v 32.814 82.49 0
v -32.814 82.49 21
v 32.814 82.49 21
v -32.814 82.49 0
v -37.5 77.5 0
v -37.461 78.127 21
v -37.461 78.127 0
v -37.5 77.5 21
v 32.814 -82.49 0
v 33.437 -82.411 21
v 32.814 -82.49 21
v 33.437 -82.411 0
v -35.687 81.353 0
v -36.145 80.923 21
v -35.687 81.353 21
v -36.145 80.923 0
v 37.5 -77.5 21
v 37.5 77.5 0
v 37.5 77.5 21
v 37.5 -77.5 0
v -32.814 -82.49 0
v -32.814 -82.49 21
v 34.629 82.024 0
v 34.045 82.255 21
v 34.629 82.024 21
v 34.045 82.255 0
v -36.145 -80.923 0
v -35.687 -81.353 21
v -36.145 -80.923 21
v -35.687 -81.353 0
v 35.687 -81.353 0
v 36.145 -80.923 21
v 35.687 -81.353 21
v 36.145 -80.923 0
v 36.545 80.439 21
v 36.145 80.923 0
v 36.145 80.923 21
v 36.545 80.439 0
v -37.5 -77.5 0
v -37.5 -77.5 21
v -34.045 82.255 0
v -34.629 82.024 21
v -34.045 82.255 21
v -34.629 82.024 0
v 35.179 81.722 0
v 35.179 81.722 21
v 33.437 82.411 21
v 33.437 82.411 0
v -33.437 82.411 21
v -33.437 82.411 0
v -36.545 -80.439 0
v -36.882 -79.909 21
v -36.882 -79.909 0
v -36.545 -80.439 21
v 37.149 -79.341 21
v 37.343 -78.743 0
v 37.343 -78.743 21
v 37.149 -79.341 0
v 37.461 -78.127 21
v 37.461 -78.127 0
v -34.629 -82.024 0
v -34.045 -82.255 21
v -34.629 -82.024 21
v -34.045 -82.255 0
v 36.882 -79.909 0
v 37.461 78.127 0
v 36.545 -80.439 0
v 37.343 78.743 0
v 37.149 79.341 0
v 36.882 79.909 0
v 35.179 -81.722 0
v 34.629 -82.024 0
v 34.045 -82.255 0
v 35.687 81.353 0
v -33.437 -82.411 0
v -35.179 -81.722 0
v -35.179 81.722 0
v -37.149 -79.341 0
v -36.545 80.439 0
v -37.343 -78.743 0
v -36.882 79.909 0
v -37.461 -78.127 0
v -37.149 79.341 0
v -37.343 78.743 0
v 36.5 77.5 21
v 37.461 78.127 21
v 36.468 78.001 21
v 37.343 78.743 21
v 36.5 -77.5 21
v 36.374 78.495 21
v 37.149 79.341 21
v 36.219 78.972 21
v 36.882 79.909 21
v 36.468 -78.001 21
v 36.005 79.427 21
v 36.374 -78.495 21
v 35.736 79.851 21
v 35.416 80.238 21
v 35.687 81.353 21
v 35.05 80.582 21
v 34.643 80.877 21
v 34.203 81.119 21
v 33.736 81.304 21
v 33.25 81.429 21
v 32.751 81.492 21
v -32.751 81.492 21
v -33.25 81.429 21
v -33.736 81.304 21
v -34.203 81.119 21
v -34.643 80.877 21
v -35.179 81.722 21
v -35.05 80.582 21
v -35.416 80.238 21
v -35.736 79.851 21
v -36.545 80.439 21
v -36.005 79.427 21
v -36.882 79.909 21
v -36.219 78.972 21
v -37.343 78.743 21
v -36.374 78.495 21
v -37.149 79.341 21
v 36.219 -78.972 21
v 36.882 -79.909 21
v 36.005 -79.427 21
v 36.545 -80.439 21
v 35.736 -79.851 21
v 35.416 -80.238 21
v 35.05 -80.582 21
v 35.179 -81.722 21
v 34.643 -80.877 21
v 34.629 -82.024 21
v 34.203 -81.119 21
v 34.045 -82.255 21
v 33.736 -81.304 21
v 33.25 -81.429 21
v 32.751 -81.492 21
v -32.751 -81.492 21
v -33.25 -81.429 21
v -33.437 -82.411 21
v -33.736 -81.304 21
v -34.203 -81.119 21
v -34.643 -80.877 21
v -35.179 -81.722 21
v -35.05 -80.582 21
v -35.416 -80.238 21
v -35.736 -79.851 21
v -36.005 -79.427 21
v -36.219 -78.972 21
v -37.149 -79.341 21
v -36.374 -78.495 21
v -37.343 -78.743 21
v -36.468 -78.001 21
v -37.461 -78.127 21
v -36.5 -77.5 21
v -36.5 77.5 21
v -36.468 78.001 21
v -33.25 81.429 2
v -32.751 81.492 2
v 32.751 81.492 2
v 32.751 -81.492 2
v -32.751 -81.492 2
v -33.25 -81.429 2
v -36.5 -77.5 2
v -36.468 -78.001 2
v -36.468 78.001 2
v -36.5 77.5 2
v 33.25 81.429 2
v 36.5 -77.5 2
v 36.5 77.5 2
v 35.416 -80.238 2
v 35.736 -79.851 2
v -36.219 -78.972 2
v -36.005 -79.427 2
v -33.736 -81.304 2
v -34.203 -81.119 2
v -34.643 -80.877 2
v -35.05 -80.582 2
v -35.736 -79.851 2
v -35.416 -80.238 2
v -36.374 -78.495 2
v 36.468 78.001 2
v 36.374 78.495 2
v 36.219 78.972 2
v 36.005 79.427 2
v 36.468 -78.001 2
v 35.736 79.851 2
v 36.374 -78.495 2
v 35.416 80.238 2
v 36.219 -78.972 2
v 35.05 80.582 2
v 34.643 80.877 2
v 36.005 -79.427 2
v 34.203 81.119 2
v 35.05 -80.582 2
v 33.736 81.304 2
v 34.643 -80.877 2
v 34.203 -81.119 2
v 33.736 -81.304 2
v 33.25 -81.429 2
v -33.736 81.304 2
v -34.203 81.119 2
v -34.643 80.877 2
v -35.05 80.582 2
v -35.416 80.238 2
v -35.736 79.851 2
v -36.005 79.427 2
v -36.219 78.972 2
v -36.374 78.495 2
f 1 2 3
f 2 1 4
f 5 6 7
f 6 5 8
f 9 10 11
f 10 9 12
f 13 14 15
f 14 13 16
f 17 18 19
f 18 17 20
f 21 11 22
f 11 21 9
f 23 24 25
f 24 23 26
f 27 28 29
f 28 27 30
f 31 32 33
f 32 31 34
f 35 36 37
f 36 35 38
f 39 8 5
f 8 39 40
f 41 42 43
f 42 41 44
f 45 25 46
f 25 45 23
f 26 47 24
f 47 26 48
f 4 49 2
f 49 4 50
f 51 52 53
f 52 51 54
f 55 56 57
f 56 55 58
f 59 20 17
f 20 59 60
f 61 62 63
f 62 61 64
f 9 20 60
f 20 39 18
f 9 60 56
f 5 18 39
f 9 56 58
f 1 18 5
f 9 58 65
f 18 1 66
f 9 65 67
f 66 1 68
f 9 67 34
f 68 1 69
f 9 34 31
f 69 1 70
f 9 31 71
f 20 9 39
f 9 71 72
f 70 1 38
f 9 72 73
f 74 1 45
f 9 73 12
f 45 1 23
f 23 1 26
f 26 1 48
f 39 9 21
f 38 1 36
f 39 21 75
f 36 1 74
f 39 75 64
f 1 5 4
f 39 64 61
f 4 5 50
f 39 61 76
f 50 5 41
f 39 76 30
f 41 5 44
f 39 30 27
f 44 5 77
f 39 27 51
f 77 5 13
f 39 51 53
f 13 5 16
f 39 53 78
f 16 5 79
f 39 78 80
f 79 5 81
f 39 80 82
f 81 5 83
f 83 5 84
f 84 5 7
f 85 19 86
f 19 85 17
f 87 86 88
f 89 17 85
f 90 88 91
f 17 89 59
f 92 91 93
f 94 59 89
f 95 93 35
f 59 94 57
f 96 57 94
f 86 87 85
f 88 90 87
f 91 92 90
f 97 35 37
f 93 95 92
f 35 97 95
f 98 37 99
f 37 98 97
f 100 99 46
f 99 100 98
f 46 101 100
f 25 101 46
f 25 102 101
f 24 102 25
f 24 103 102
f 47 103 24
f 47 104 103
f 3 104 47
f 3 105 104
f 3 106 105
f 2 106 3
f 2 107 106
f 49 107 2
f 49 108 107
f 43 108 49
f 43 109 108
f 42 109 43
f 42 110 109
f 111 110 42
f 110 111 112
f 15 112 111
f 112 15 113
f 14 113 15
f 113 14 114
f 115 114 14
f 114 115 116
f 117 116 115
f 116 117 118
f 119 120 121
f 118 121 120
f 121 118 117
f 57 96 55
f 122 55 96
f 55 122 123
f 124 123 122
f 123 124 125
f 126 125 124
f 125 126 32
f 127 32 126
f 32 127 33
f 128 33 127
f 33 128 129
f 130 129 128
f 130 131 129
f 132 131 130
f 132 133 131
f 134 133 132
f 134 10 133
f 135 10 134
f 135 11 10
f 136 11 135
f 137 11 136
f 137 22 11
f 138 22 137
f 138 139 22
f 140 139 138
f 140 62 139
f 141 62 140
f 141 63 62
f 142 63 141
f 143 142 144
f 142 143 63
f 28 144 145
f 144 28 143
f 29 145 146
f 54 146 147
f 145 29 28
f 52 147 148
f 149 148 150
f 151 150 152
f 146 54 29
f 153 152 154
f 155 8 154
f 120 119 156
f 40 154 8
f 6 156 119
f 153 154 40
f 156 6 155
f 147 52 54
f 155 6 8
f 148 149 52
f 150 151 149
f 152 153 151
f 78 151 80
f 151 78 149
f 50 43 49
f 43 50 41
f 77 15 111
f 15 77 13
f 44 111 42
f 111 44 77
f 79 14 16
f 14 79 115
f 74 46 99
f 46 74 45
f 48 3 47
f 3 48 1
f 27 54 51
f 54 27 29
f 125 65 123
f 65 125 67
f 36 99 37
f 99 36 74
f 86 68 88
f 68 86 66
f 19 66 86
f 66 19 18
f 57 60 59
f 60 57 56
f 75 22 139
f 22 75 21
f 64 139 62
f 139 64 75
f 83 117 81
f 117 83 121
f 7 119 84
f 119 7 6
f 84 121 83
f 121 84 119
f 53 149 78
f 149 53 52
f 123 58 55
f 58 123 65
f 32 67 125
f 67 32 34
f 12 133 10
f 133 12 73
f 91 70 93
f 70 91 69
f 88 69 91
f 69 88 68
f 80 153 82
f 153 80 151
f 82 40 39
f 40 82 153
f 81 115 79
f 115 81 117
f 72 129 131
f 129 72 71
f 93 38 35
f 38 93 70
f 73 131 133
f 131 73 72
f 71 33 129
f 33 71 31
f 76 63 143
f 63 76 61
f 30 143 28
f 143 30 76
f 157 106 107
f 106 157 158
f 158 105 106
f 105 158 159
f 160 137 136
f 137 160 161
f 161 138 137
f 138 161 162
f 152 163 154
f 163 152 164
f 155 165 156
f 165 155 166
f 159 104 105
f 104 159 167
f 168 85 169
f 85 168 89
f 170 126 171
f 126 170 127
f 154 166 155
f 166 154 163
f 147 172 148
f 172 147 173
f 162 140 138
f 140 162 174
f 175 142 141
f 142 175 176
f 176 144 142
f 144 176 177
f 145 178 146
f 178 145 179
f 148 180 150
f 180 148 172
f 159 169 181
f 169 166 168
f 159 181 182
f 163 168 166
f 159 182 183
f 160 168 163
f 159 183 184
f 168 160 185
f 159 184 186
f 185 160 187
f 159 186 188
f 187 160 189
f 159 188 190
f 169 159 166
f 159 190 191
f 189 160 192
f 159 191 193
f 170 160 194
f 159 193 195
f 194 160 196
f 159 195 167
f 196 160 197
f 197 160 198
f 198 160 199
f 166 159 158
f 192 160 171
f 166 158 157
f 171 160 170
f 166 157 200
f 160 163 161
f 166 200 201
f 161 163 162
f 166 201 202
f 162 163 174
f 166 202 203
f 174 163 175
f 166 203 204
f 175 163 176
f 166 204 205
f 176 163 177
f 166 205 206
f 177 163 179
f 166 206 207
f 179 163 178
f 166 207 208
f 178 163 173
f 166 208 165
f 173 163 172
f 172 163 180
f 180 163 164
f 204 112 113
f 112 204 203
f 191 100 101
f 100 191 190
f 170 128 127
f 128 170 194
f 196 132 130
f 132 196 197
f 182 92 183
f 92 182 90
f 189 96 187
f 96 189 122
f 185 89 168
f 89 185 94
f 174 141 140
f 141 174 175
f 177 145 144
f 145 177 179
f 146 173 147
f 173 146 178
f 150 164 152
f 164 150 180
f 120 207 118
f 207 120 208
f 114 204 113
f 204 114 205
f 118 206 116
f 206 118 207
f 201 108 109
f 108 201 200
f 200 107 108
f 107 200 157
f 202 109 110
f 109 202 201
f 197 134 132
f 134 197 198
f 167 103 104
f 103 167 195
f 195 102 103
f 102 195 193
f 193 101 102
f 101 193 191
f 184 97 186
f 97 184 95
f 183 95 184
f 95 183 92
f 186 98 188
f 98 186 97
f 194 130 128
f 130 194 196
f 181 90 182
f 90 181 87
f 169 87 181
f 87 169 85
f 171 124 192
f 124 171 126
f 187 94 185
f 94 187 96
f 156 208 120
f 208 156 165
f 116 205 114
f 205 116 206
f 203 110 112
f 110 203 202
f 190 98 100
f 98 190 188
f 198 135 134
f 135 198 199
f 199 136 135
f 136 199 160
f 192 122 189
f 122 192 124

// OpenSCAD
$fn = 50;


difference() {
	union() {
		hull() {
			translate(v = [-32.5000000000, 77.5000000000, 0]) {
				cylinder(h = 21, r = 5);
			}
			translate(v = [32.5000000000, 77.5000000000, 0]) {
				cylinder(h = 21, r = 5);
			}
			translate(v = [-32.5000000000, -77.5000000000, 0]) {
				cylinder(h = 21, r = 5);
			}
			translate(v = [32.5000000000, -77.5000000000, 0]) {
				cylinder(h = 21, r = 5);
			}
		}
	}
	union() {
		translate(v = [0, 0, 2]) {
			hull() {
				translate(v = [-32.5000000000, 77.5000000000, 0]) {
					cylinder(h = 19, r = 4);
				}
				translate(v = [32.5000000000, 77.5000000000, 0]) {
					cylinder(h = 19, r = 4);
				}
				translate(v = [-32.5000000000, -77.5000000000, 0]) {
					cylinder(h = 19, r = 4);
				}
				translate(v = [32.5000000000, -77.5000000000, 0]) {
					cylinder(h = 19, r = 4);
				}
			}
		}
	}
}
